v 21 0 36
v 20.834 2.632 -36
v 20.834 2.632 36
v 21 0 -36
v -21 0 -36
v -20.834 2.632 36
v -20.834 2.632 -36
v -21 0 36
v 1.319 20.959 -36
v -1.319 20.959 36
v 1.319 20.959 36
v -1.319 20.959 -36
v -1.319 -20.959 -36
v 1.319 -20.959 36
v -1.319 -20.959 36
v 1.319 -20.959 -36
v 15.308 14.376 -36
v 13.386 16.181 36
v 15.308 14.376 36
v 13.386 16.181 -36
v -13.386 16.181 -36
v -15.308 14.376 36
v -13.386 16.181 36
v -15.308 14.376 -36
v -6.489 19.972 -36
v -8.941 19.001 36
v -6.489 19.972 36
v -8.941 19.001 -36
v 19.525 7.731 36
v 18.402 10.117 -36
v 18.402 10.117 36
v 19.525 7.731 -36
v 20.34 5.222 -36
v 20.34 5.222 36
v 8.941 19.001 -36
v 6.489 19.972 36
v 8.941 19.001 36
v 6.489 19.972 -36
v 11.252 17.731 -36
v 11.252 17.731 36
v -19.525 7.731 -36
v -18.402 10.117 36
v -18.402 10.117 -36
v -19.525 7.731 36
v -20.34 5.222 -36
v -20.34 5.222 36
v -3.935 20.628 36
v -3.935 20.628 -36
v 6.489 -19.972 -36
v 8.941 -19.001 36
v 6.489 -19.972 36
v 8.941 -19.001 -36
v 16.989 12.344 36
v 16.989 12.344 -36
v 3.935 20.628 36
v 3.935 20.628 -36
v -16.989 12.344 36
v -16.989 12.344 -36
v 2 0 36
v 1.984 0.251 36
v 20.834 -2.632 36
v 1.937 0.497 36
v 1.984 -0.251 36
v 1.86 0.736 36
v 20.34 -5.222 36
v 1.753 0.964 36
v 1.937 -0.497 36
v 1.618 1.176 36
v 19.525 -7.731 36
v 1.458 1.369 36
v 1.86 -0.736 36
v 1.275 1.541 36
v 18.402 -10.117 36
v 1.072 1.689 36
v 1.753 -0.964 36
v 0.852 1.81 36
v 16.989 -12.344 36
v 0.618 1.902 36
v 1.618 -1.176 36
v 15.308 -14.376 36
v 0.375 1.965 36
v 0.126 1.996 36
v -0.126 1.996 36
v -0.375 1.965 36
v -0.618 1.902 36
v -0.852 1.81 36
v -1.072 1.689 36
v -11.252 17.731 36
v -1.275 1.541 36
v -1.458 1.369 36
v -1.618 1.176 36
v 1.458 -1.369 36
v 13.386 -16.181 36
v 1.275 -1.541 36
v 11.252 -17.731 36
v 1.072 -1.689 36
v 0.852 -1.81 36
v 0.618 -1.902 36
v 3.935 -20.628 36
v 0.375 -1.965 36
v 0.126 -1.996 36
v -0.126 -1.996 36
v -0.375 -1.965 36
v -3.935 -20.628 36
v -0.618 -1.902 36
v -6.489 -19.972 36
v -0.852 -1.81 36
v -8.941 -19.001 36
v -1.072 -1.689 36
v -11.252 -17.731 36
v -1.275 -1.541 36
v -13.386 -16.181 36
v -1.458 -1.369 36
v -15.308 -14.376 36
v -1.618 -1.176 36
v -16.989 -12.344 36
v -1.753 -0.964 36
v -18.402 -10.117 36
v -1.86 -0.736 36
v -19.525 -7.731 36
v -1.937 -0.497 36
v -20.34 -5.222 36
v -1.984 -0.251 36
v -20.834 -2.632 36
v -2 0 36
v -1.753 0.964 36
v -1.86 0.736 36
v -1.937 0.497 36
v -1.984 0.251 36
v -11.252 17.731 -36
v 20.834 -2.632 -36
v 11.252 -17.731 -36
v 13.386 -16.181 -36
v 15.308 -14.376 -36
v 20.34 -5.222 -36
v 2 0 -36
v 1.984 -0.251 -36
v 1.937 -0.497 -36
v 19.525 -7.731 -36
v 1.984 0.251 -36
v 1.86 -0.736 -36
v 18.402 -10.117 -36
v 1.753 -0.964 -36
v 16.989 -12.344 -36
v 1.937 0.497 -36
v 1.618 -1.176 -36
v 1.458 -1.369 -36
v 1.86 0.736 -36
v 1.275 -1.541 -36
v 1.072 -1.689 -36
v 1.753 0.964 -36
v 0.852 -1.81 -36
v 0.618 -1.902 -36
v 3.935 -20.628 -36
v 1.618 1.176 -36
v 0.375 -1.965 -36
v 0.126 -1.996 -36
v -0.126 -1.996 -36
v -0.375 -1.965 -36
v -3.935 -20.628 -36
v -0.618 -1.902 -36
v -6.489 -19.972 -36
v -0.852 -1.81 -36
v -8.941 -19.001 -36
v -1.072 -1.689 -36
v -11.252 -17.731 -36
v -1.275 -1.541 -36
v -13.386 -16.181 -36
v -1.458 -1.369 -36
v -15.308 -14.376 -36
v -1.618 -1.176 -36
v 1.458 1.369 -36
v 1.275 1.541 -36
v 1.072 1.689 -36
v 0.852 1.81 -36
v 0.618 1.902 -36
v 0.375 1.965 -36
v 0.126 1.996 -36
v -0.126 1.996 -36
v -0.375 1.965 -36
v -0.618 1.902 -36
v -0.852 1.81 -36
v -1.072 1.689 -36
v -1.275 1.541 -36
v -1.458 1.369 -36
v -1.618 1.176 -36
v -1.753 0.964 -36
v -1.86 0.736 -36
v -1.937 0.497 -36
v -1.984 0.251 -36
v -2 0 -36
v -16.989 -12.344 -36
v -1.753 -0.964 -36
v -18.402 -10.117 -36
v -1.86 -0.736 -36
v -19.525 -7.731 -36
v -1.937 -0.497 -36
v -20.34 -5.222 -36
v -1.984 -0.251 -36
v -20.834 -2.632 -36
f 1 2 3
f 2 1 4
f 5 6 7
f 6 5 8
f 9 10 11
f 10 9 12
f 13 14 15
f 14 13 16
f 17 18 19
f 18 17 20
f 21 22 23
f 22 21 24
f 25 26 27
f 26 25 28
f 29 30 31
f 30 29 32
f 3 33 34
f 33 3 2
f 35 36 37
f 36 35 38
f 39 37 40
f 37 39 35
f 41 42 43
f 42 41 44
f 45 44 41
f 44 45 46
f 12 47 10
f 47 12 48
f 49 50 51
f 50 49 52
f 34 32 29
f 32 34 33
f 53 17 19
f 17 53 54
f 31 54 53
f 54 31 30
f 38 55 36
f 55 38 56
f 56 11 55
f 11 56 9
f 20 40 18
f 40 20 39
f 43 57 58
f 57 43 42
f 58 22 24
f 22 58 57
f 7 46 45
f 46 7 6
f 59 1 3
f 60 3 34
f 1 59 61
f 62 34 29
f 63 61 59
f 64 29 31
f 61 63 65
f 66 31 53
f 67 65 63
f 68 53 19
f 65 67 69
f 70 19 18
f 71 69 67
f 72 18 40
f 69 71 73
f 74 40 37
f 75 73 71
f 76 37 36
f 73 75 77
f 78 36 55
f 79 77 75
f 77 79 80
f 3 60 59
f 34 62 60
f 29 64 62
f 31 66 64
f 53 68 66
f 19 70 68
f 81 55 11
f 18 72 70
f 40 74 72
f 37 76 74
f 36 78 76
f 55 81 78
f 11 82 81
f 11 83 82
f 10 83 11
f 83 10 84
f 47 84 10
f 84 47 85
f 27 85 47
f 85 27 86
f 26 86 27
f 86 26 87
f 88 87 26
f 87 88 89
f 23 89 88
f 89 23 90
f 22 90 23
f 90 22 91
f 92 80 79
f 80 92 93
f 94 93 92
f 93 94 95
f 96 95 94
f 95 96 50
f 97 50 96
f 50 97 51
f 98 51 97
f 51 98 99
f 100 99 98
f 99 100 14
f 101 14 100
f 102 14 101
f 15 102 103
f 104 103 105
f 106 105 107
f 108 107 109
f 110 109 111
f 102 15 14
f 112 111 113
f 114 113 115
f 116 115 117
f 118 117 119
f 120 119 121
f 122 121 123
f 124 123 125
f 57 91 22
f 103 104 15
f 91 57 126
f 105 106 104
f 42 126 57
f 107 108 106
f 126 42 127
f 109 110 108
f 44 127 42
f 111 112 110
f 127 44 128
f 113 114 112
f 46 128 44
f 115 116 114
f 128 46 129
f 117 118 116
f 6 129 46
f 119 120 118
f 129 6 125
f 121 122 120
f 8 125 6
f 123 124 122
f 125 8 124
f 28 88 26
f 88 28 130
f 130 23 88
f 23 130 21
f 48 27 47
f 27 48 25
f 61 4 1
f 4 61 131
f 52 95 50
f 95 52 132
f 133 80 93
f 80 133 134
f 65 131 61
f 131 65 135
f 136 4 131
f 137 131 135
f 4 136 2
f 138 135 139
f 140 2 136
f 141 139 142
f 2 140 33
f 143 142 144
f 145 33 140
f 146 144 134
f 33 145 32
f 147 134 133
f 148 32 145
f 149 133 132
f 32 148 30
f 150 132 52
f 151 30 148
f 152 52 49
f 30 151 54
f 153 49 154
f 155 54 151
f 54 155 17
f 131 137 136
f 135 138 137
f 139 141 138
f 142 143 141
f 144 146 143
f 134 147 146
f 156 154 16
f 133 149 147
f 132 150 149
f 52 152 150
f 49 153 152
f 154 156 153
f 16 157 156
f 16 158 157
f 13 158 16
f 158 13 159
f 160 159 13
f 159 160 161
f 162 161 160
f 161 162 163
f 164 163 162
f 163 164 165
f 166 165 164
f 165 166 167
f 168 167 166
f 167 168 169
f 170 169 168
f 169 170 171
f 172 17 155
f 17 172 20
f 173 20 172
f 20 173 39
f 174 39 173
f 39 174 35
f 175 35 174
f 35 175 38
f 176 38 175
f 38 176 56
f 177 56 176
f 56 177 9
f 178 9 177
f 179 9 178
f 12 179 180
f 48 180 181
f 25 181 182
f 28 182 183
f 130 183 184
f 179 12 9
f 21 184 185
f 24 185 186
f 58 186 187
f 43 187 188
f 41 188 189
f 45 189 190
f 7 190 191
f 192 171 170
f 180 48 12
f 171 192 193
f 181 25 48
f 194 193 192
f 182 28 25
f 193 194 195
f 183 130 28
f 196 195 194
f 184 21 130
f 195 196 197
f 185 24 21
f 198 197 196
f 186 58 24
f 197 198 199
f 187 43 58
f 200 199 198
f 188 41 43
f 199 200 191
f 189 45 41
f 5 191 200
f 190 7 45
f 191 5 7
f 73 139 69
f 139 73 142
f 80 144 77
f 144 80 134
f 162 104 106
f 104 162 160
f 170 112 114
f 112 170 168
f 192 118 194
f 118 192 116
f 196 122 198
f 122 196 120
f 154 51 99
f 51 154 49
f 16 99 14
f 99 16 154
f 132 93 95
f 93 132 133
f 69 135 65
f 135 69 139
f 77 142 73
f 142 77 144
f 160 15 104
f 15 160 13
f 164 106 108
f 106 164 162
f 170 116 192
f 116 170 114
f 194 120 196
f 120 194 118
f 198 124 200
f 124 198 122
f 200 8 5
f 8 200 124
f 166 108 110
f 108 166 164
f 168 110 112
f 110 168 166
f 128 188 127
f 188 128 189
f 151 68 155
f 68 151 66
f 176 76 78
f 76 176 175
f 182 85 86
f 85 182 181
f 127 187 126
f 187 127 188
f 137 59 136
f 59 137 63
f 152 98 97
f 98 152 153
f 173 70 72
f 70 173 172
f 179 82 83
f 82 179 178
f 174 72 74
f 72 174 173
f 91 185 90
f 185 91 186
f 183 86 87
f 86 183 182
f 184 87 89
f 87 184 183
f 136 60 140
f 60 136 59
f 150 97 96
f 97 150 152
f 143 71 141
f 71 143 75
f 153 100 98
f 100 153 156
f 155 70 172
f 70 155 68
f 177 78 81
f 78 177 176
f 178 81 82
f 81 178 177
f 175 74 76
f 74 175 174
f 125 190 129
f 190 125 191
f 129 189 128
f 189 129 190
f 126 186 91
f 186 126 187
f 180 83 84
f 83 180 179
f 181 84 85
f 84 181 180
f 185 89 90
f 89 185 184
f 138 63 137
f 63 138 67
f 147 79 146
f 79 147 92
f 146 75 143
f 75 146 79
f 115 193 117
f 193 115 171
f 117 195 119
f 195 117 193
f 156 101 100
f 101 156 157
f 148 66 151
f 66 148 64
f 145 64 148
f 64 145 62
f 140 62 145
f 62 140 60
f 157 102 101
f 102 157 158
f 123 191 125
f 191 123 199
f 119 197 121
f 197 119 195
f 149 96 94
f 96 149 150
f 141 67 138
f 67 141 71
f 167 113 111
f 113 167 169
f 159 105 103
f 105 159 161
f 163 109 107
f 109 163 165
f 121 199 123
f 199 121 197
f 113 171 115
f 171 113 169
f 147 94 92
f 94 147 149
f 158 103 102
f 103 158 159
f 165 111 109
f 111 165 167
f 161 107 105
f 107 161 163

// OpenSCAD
$fn = 50;


difference() {
	union() {
		translate(v = [0, 0, -36.0000000000]) {
			cylinder(h = 72, r = 21.0000000000);
		}
	}
	union() {
		translate(v = [0, 0, -100.0000000000]) {
			cylinder(h = 200, r = 2);
		}
	}
}
